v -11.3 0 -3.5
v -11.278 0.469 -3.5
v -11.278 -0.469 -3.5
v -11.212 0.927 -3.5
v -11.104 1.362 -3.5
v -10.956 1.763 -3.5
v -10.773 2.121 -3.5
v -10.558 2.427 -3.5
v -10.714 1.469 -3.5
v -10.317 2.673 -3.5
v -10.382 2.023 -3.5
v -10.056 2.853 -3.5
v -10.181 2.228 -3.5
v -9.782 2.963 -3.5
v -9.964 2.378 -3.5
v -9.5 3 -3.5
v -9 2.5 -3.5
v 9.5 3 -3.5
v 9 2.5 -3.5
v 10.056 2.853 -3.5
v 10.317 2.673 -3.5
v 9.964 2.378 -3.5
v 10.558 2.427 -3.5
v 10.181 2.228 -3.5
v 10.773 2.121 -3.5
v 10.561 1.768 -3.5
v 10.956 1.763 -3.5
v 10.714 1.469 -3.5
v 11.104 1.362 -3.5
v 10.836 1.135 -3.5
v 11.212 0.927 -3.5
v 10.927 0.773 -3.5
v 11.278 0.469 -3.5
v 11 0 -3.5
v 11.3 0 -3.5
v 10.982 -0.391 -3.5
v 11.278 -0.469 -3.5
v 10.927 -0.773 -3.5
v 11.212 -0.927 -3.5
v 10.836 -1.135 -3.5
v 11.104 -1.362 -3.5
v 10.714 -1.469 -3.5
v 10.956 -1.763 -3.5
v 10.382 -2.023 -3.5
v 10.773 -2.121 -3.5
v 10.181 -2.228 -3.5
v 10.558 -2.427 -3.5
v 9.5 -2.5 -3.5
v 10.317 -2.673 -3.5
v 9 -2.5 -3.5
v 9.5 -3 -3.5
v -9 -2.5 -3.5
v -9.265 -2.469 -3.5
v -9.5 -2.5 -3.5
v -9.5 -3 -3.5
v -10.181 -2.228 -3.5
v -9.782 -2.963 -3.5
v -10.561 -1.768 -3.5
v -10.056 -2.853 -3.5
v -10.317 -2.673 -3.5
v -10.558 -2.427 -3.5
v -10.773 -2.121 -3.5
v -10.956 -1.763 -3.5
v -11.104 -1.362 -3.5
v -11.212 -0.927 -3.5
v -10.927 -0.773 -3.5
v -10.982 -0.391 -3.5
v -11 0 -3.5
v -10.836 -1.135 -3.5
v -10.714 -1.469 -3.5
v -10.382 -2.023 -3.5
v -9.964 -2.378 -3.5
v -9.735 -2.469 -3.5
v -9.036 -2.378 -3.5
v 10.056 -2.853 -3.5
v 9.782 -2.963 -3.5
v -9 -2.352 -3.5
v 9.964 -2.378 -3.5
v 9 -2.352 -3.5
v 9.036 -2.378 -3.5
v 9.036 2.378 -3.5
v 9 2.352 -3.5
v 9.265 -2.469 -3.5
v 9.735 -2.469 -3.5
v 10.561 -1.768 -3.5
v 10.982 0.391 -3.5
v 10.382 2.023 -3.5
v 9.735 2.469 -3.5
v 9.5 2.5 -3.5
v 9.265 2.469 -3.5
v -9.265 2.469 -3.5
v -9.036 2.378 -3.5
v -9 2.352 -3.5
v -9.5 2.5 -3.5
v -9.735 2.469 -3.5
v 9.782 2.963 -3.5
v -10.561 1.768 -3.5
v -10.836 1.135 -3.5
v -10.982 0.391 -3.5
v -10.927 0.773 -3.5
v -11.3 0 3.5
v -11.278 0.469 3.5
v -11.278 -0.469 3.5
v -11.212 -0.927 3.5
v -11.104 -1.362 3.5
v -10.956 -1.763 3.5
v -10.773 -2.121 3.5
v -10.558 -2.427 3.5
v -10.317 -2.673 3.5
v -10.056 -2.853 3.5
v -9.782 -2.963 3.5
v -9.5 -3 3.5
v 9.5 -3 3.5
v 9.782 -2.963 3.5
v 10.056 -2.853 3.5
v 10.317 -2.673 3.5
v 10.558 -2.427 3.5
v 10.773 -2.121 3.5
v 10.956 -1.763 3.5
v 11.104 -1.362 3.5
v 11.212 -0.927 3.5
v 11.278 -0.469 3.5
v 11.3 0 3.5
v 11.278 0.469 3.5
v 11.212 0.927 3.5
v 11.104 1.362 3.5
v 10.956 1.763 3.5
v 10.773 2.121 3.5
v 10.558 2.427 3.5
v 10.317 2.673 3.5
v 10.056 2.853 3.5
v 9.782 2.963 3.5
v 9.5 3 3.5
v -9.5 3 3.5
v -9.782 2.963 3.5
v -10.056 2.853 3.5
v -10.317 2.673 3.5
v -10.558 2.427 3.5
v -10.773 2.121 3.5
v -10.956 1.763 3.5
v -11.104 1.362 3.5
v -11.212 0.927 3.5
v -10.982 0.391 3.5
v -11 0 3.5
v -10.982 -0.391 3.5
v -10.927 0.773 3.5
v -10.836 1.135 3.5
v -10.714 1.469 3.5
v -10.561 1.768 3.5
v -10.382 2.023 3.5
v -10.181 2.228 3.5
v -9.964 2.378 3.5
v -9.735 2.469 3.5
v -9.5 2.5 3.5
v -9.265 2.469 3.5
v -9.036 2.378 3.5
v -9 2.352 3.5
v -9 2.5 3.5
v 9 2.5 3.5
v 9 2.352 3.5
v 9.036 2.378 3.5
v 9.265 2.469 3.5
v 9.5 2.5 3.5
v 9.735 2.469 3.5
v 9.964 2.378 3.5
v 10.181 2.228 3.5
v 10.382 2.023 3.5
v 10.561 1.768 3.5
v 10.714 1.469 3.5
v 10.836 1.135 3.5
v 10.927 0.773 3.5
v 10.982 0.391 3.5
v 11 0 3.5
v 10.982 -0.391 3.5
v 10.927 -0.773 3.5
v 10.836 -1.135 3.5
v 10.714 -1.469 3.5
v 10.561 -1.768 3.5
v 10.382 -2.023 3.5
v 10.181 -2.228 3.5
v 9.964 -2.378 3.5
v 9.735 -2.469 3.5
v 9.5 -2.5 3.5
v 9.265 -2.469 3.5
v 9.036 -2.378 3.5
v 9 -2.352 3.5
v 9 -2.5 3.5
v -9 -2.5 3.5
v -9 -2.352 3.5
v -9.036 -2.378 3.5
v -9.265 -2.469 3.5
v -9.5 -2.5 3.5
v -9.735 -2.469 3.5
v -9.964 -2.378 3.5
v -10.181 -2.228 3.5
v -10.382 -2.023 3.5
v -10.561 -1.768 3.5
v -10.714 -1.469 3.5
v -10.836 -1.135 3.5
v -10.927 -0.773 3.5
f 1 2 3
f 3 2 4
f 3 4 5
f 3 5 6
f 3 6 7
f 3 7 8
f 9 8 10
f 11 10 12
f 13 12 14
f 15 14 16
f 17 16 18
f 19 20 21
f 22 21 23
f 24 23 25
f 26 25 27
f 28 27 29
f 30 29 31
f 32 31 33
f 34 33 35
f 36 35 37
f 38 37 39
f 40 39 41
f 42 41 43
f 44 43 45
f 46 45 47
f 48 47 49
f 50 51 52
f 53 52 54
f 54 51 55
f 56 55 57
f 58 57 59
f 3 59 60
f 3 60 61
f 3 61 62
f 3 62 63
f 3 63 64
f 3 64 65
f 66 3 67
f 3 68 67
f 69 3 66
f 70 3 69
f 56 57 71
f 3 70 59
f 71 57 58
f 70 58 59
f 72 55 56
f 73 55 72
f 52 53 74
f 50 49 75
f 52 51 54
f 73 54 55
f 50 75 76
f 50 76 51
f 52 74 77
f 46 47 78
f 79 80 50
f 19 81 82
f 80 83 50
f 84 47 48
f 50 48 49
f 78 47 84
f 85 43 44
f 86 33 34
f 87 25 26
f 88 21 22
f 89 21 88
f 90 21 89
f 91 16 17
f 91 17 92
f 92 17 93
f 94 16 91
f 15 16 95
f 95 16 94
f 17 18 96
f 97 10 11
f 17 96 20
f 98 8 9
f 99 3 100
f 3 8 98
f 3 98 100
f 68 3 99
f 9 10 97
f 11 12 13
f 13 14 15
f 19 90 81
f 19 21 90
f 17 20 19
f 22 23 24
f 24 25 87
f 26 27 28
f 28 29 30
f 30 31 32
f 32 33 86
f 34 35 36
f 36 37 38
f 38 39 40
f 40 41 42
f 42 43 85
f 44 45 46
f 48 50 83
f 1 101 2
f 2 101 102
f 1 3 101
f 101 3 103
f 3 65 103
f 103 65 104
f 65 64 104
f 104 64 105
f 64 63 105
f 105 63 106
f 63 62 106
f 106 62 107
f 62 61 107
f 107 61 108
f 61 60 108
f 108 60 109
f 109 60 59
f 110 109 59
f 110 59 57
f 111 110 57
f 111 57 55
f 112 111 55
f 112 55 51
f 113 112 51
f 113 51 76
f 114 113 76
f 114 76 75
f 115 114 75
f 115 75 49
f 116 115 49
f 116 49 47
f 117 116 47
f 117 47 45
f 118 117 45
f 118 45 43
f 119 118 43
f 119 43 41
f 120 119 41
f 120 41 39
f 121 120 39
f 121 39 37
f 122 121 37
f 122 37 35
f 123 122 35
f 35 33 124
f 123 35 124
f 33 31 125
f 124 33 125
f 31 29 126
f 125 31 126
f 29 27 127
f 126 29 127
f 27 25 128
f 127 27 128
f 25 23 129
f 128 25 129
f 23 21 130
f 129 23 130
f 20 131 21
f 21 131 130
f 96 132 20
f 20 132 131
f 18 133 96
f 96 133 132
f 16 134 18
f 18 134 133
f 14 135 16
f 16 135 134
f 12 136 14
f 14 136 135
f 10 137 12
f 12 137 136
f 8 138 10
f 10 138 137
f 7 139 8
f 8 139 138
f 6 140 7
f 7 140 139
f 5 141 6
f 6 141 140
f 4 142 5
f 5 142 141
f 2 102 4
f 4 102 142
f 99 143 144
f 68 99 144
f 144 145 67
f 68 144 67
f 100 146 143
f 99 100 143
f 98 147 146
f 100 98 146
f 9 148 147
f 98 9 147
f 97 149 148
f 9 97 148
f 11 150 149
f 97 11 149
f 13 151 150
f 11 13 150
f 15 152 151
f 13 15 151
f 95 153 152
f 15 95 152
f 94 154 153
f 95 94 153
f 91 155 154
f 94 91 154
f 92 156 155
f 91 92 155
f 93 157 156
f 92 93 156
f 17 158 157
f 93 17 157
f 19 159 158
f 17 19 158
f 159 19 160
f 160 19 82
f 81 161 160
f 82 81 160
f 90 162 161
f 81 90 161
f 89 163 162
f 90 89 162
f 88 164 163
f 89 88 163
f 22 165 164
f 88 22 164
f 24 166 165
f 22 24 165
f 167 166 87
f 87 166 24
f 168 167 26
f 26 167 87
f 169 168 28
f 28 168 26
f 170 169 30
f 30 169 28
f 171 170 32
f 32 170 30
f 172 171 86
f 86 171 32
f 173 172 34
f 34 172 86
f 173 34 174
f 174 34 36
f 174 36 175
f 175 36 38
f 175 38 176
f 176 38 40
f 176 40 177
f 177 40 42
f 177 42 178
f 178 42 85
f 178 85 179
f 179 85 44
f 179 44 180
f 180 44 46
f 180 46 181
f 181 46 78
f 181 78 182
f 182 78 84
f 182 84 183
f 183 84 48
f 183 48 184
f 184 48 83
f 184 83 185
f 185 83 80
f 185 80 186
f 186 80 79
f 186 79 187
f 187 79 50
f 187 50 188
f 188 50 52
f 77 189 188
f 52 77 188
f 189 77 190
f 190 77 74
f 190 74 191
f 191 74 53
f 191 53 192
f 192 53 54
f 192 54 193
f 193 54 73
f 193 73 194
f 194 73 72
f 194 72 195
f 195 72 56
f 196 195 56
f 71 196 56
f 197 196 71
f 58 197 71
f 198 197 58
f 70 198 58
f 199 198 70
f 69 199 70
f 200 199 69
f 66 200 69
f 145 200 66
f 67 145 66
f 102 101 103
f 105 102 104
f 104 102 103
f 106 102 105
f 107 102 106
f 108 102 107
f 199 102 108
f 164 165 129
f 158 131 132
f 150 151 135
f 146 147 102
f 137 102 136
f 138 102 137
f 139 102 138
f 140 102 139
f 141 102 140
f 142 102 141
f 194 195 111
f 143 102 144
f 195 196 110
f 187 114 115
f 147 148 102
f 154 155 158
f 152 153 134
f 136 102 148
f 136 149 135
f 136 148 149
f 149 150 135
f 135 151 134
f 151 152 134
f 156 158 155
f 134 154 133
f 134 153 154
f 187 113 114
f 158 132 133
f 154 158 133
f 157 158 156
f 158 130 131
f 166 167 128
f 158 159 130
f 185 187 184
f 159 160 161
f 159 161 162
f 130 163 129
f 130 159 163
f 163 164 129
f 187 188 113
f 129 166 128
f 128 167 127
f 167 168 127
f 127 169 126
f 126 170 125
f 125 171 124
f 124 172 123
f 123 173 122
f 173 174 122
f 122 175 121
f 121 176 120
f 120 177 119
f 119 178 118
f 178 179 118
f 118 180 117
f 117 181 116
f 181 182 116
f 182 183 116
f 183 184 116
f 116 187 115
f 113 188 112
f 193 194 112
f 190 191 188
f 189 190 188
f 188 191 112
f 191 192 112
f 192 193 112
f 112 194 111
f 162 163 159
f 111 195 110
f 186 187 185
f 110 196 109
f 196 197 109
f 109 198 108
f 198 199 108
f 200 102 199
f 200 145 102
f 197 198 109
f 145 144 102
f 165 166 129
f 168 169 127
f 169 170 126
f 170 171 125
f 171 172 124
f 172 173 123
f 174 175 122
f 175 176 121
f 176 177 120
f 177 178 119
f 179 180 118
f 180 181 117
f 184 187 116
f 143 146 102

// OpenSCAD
difference()
{
	union()
	{
		cube([19, 6, 7], center=true);
		translate([9.5,0,0])
			scale([0.6,1,1])
			cylinder(r=3, h=7, center=true, $fn=40);
		translate([-9.5,0,0])
scale([0.6,1,1])
			cylinder(r=3, h=7, center=true, $fn=40);

	}
	cube([18, 5, 20], center=true);
		translate([9.5,0,0])
scale([0.6,1,1])
			cylinder(r=2.5, h=20, center=true, $fn=40);
		translate([-9.5,0,0])
scale([0.6,1,1])
			cylinder(r=2.5, h=20, center=true, $fn=40);

}
